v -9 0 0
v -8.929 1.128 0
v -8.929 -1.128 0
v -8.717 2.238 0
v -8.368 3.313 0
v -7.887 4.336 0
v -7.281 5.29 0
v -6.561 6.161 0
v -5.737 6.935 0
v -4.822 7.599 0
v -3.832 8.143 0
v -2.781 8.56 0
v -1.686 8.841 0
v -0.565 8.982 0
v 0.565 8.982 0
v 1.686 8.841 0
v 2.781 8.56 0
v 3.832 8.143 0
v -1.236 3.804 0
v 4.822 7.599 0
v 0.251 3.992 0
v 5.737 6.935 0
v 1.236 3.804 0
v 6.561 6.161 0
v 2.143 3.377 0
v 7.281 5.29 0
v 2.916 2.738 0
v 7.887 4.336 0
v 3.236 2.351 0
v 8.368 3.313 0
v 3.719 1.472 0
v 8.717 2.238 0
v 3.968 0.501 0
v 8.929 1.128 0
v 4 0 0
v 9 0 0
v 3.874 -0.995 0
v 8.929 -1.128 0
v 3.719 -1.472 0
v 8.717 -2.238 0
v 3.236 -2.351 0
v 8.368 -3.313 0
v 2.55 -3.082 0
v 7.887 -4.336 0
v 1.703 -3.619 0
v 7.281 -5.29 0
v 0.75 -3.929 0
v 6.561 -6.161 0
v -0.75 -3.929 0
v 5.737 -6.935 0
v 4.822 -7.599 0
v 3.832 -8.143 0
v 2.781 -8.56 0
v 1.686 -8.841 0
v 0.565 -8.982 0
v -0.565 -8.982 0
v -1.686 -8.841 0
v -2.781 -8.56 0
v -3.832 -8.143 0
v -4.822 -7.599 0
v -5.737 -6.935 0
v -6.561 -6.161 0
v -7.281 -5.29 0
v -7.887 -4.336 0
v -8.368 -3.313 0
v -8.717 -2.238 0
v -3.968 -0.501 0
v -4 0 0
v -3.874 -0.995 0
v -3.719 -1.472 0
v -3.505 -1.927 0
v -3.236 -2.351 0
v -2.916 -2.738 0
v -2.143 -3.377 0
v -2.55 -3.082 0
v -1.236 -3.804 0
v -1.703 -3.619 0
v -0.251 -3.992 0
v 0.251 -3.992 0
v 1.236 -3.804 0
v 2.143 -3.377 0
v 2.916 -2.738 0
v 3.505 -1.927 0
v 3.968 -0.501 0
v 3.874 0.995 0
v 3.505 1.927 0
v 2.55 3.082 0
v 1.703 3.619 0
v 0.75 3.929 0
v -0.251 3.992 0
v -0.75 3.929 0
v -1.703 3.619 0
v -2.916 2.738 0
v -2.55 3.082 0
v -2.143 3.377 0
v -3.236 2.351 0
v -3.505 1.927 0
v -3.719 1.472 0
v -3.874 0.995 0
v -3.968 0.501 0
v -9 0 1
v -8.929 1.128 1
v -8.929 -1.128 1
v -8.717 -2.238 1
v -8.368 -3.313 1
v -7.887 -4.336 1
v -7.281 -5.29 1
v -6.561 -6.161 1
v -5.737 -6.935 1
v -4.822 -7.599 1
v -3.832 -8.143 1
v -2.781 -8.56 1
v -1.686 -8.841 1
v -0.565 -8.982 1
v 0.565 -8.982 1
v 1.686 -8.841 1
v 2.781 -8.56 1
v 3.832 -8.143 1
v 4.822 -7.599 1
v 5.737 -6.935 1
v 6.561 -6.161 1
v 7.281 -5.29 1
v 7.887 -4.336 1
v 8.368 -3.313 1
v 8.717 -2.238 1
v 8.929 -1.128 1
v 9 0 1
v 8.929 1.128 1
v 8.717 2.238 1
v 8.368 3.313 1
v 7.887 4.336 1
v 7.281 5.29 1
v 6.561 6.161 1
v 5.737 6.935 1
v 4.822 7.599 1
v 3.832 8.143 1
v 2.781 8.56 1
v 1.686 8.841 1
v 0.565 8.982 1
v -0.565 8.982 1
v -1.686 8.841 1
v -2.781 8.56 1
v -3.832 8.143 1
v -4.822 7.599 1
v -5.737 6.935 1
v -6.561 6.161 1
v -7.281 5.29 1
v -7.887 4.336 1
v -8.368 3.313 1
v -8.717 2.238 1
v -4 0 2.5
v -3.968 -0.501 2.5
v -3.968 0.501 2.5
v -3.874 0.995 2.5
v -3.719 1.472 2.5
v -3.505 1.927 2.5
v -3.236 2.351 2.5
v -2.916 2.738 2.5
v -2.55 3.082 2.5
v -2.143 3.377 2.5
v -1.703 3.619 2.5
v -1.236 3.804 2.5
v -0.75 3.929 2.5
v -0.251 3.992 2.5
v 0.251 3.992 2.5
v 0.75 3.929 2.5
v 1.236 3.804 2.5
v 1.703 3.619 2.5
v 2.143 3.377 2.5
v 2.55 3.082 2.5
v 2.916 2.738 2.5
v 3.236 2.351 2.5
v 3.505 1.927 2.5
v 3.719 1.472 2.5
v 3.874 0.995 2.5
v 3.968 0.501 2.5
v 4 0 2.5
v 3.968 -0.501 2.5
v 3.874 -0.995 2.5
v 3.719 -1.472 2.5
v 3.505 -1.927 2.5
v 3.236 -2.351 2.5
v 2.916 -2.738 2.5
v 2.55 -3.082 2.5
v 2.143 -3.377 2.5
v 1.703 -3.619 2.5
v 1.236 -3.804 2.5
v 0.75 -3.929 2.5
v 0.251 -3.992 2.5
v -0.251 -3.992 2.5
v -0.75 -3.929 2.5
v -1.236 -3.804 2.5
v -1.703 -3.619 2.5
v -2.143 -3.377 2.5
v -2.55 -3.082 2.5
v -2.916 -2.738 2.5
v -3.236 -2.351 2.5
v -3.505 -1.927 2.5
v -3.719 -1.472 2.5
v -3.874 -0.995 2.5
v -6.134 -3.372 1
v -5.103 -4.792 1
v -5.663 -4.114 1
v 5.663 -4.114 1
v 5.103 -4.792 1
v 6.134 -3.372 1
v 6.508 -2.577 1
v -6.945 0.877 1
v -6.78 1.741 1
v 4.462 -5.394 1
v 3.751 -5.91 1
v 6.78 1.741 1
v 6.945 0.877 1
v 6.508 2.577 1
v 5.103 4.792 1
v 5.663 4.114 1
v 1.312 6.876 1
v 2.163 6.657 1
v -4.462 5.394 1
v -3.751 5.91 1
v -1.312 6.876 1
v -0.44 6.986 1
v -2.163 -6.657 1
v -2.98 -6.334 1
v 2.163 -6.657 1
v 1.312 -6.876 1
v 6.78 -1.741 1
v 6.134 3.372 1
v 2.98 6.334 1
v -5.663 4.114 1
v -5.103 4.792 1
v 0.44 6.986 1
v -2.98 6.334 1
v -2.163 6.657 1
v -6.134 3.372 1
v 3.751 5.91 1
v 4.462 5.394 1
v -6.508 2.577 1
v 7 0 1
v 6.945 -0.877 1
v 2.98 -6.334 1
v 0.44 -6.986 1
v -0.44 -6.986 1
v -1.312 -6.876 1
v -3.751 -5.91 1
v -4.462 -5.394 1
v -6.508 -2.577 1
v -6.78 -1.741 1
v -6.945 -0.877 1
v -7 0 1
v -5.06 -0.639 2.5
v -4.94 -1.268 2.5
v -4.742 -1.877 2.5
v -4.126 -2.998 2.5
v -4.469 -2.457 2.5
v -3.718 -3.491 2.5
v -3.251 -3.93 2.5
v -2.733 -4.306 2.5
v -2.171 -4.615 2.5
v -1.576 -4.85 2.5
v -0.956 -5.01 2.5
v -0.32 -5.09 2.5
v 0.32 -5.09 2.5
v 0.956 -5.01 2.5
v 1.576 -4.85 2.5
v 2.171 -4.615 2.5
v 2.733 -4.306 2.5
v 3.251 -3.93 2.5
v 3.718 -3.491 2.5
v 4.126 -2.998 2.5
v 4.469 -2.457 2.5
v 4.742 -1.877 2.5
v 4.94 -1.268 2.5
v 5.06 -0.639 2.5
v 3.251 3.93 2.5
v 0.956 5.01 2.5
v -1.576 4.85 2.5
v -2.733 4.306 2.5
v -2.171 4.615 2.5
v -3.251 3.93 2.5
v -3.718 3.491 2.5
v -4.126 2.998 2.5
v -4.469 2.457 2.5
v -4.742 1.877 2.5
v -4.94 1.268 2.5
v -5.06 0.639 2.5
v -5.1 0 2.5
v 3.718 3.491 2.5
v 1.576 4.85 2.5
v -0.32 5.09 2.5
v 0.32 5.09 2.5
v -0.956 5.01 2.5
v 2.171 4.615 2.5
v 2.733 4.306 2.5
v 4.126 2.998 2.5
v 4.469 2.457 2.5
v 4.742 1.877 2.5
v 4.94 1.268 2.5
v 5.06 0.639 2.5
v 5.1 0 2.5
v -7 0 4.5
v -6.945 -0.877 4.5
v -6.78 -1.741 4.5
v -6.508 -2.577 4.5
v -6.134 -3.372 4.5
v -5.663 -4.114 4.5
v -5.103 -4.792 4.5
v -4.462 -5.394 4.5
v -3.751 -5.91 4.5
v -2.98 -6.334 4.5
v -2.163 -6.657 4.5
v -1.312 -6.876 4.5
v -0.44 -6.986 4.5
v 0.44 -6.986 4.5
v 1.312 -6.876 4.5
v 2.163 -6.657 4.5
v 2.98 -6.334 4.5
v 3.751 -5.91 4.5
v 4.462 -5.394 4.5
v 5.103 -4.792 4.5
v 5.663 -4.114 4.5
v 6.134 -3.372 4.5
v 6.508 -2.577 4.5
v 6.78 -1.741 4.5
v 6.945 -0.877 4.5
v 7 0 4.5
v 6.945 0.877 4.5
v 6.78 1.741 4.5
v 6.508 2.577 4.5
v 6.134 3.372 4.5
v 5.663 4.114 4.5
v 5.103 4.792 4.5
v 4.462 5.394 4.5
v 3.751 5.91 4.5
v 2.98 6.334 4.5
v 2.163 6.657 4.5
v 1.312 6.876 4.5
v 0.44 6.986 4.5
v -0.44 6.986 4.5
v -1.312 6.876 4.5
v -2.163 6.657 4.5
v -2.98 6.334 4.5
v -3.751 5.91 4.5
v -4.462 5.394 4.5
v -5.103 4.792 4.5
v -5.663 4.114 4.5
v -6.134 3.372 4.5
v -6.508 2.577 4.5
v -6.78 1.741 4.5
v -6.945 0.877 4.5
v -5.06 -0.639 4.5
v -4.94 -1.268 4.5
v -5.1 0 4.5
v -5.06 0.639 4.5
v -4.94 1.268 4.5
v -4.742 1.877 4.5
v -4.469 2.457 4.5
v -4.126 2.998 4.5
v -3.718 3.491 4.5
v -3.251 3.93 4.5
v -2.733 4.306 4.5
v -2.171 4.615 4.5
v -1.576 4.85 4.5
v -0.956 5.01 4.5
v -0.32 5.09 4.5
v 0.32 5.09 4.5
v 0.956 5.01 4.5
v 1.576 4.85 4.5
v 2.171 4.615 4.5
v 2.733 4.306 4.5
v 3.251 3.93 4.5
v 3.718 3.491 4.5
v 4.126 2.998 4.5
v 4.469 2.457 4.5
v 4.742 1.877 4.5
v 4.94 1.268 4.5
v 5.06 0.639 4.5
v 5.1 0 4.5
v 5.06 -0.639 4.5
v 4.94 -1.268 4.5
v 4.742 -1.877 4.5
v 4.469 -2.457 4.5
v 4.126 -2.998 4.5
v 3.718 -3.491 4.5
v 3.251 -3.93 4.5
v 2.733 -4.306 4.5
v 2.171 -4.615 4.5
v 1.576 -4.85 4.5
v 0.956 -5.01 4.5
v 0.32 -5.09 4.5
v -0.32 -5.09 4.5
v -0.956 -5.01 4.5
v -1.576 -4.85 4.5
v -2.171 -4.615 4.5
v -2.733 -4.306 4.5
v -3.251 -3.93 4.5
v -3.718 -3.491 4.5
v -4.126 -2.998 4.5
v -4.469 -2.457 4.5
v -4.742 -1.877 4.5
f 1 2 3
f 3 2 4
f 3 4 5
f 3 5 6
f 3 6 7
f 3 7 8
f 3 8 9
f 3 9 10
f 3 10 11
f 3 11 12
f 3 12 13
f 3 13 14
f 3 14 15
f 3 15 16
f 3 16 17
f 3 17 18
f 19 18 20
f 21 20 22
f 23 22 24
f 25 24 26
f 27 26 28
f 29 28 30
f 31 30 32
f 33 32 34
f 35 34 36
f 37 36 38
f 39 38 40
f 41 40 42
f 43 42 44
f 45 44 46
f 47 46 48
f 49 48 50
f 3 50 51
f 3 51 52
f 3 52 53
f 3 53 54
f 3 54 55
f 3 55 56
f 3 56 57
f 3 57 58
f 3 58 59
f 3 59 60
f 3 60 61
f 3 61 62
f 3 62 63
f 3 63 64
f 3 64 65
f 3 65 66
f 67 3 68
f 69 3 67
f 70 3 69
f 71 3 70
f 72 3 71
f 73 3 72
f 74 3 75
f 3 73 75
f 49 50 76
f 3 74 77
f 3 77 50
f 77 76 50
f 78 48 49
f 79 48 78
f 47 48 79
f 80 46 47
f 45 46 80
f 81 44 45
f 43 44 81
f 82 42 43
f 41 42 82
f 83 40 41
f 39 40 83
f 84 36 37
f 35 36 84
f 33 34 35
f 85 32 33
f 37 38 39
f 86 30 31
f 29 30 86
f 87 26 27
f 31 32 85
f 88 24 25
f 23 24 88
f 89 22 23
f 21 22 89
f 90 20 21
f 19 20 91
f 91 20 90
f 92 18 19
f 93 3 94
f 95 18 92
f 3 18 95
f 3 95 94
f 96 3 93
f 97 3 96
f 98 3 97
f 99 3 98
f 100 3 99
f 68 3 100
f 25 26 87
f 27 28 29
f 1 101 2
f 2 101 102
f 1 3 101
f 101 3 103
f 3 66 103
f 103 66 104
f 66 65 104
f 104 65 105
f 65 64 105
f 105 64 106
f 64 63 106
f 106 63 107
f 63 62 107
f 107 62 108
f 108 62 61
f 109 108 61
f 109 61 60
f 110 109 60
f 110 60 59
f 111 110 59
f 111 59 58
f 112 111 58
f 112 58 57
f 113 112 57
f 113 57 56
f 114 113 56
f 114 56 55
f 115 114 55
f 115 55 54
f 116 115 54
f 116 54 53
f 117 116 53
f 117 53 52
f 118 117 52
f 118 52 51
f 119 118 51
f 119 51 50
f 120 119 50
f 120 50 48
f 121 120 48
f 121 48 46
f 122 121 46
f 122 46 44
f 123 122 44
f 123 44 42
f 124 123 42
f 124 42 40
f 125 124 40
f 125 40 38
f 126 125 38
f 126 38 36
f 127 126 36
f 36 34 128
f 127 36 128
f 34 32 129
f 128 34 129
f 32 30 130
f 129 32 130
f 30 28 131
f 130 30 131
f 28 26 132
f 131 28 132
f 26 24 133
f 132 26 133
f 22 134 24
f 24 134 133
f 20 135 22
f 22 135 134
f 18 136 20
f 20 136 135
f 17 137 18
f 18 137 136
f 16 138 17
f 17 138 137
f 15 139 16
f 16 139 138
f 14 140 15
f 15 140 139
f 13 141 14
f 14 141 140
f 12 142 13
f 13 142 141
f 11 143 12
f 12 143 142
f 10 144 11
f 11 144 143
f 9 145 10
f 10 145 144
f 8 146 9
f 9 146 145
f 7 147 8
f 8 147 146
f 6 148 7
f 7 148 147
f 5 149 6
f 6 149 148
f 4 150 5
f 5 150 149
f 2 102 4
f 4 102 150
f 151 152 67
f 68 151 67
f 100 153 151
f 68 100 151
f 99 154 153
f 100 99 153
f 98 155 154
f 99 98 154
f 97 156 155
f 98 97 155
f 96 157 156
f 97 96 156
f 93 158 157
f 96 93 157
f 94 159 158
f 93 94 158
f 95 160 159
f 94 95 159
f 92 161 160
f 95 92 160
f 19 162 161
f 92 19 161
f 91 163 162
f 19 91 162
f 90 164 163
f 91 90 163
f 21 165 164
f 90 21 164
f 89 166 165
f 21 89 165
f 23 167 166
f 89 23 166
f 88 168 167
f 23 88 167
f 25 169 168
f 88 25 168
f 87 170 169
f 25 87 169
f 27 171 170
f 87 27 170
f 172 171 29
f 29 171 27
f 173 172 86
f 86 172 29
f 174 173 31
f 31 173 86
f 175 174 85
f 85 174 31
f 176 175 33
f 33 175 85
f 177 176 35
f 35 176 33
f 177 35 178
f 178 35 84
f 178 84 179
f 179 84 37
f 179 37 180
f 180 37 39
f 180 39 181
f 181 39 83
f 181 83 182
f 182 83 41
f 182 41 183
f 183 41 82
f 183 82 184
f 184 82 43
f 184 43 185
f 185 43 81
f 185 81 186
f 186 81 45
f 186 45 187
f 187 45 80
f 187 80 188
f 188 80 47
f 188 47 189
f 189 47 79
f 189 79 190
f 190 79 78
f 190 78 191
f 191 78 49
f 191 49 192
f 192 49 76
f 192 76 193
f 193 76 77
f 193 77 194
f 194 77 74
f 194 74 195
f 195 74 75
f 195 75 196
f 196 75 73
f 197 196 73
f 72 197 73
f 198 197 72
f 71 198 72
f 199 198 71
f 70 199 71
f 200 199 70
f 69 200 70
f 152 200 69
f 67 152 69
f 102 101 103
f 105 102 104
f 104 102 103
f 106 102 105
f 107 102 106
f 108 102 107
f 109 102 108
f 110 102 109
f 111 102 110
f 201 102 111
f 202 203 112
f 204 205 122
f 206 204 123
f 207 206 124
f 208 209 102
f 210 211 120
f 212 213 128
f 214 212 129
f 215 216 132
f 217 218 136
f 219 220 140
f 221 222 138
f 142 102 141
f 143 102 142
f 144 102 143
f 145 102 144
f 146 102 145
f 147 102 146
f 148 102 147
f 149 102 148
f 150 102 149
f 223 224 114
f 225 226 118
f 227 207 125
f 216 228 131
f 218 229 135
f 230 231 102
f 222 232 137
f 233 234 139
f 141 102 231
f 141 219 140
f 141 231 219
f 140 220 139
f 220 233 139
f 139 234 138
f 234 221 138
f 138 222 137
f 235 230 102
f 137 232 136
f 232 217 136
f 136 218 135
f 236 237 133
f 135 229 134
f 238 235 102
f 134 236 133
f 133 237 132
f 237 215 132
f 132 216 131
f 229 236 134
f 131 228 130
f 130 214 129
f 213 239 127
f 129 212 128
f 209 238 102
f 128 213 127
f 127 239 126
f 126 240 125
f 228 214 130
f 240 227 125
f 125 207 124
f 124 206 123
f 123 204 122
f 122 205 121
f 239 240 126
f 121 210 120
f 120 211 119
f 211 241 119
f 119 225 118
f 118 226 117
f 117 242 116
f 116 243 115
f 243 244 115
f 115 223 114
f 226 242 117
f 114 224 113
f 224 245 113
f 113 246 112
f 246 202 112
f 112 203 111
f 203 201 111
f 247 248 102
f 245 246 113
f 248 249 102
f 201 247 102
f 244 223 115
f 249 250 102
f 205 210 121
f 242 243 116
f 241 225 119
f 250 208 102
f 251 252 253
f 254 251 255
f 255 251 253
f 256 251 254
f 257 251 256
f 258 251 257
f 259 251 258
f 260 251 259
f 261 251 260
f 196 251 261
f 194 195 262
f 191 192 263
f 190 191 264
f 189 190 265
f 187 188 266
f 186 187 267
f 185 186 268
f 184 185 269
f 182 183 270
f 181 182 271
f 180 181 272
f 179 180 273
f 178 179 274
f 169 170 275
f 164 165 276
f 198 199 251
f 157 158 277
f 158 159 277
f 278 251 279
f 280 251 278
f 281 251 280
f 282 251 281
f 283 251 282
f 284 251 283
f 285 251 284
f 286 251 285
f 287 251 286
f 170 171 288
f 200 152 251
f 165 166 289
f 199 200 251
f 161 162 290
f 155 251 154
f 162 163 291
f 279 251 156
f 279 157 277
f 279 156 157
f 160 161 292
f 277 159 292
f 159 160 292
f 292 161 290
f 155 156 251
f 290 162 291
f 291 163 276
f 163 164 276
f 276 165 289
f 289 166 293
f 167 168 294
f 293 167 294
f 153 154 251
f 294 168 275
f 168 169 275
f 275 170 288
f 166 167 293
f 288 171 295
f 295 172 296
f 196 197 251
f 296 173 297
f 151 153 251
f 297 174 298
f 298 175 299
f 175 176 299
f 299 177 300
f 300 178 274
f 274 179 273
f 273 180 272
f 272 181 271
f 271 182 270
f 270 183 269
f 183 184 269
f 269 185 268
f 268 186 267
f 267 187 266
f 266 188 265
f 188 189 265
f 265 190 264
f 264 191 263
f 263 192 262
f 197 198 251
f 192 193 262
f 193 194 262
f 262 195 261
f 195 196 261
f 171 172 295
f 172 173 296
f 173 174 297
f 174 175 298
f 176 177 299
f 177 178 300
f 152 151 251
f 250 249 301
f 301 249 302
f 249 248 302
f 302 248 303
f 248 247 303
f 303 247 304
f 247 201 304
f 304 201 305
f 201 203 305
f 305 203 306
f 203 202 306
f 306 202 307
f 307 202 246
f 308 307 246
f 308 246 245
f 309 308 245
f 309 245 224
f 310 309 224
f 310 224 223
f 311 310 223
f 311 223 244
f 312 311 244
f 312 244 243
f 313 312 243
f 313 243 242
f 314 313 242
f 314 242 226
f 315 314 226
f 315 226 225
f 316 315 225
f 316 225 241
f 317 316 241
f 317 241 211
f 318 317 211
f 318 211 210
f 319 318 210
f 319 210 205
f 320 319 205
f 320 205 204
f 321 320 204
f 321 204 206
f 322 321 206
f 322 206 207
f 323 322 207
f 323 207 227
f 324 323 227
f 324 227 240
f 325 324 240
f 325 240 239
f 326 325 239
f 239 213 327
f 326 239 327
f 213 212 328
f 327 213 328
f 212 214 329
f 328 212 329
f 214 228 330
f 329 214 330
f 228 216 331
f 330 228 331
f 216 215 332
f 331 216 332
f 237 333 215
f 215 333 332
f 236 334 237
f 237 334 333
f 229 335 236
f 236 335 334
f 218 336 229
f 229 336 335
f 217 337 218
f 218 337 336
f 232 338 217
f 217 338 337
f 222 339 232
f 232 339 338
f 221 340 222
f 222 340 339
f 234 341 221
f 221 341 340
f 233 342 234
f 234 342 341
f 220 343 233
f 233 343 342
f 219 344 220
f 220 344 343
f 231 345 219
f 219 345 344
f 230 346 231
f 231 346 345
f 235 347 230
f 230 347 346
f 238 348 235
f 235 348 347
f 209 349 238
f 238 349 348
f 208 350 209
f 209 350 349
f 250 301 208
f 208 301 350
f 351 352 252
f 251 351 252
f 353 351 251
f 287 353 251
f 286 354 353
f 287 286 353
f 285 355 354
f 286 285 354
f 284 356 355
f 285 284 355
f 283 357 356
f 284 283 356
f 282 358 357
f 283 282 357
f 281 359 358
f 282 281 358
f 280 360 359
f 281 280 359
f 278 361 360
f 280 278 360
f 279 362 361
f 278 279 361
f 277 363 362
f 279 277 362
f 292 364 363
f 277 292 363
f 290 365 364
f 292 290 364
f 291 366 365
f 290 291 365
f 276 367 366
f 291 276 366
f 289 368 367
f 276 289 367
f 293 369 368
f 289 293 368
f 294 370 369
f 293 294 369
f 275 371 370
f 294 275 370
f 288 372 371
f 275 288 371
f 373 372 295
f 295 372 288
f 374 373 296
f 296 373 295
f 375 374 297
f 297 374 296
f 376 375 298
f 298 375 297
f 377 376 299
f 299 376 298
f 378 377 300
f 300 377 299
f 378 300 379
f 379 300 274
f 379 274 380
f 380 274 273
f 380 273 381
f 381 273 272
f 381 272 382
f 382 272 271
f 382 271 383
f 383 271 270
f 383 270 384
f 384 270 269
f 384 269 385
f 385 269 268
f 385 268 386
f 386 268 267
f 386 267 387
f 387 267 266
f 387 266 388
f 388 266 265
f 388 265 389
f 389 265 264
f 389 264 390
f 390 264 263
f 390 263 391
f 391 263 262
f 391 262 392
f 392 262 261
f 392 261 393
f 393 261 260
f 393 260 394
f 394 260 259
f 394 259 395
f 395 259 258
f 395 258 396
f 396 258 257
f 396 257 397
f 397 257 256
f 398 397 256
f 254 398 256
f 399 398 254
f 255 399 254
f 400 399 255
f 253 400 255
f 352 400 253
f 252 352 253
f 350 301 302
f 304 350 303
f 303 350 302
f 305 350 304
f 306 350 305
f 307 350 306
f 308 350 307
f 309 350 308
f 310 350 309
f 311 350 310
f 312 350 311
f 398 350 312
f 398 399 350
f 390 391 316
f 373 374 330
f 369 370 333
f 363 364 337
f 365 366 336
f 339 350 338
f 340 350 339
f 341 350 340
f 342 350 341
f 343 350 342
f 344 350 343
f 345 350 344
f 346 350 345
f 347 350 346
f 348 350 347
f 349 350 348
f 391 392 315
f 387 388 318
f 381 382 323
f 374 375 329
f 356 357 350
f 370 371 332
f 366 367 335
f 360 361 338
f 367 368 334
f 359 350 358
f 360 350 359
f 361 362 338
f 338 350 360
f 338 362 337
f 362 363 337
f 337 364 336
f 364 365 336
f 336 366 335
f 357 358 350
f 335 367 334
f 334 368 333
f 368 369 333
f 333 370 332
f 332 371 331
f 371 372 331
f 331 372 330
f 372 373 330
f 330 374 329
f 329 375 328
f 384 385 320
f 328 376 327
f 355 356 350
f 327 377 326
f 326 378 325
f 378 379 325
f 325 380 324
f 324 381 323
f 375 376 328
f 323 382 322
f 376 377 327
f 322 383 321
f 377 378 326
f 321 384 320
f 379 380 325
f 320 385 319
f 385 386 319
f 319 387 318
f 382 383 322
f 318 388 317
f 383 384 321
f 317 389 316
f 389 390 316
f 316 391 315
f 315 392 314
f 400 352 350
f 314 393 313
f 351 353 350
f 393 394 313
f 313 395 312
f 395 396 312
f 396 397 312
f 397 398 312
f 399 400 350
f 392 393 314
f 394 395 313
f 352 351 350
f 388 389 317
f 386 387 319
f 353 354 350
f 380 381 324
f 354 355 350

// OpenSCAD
// 623zz - 10x3x4 mm

$fn=50;
module 623zz () {
	difference () {
		union () {
			cylinder (r=7, h=4.5);
			cylinder (r=9, h=1);
		}
		translate ([0,0,2.5]) cylinder (r=5.1, h=5);
		cylinder (r=4, h=5);
	}
}

623zz ();
